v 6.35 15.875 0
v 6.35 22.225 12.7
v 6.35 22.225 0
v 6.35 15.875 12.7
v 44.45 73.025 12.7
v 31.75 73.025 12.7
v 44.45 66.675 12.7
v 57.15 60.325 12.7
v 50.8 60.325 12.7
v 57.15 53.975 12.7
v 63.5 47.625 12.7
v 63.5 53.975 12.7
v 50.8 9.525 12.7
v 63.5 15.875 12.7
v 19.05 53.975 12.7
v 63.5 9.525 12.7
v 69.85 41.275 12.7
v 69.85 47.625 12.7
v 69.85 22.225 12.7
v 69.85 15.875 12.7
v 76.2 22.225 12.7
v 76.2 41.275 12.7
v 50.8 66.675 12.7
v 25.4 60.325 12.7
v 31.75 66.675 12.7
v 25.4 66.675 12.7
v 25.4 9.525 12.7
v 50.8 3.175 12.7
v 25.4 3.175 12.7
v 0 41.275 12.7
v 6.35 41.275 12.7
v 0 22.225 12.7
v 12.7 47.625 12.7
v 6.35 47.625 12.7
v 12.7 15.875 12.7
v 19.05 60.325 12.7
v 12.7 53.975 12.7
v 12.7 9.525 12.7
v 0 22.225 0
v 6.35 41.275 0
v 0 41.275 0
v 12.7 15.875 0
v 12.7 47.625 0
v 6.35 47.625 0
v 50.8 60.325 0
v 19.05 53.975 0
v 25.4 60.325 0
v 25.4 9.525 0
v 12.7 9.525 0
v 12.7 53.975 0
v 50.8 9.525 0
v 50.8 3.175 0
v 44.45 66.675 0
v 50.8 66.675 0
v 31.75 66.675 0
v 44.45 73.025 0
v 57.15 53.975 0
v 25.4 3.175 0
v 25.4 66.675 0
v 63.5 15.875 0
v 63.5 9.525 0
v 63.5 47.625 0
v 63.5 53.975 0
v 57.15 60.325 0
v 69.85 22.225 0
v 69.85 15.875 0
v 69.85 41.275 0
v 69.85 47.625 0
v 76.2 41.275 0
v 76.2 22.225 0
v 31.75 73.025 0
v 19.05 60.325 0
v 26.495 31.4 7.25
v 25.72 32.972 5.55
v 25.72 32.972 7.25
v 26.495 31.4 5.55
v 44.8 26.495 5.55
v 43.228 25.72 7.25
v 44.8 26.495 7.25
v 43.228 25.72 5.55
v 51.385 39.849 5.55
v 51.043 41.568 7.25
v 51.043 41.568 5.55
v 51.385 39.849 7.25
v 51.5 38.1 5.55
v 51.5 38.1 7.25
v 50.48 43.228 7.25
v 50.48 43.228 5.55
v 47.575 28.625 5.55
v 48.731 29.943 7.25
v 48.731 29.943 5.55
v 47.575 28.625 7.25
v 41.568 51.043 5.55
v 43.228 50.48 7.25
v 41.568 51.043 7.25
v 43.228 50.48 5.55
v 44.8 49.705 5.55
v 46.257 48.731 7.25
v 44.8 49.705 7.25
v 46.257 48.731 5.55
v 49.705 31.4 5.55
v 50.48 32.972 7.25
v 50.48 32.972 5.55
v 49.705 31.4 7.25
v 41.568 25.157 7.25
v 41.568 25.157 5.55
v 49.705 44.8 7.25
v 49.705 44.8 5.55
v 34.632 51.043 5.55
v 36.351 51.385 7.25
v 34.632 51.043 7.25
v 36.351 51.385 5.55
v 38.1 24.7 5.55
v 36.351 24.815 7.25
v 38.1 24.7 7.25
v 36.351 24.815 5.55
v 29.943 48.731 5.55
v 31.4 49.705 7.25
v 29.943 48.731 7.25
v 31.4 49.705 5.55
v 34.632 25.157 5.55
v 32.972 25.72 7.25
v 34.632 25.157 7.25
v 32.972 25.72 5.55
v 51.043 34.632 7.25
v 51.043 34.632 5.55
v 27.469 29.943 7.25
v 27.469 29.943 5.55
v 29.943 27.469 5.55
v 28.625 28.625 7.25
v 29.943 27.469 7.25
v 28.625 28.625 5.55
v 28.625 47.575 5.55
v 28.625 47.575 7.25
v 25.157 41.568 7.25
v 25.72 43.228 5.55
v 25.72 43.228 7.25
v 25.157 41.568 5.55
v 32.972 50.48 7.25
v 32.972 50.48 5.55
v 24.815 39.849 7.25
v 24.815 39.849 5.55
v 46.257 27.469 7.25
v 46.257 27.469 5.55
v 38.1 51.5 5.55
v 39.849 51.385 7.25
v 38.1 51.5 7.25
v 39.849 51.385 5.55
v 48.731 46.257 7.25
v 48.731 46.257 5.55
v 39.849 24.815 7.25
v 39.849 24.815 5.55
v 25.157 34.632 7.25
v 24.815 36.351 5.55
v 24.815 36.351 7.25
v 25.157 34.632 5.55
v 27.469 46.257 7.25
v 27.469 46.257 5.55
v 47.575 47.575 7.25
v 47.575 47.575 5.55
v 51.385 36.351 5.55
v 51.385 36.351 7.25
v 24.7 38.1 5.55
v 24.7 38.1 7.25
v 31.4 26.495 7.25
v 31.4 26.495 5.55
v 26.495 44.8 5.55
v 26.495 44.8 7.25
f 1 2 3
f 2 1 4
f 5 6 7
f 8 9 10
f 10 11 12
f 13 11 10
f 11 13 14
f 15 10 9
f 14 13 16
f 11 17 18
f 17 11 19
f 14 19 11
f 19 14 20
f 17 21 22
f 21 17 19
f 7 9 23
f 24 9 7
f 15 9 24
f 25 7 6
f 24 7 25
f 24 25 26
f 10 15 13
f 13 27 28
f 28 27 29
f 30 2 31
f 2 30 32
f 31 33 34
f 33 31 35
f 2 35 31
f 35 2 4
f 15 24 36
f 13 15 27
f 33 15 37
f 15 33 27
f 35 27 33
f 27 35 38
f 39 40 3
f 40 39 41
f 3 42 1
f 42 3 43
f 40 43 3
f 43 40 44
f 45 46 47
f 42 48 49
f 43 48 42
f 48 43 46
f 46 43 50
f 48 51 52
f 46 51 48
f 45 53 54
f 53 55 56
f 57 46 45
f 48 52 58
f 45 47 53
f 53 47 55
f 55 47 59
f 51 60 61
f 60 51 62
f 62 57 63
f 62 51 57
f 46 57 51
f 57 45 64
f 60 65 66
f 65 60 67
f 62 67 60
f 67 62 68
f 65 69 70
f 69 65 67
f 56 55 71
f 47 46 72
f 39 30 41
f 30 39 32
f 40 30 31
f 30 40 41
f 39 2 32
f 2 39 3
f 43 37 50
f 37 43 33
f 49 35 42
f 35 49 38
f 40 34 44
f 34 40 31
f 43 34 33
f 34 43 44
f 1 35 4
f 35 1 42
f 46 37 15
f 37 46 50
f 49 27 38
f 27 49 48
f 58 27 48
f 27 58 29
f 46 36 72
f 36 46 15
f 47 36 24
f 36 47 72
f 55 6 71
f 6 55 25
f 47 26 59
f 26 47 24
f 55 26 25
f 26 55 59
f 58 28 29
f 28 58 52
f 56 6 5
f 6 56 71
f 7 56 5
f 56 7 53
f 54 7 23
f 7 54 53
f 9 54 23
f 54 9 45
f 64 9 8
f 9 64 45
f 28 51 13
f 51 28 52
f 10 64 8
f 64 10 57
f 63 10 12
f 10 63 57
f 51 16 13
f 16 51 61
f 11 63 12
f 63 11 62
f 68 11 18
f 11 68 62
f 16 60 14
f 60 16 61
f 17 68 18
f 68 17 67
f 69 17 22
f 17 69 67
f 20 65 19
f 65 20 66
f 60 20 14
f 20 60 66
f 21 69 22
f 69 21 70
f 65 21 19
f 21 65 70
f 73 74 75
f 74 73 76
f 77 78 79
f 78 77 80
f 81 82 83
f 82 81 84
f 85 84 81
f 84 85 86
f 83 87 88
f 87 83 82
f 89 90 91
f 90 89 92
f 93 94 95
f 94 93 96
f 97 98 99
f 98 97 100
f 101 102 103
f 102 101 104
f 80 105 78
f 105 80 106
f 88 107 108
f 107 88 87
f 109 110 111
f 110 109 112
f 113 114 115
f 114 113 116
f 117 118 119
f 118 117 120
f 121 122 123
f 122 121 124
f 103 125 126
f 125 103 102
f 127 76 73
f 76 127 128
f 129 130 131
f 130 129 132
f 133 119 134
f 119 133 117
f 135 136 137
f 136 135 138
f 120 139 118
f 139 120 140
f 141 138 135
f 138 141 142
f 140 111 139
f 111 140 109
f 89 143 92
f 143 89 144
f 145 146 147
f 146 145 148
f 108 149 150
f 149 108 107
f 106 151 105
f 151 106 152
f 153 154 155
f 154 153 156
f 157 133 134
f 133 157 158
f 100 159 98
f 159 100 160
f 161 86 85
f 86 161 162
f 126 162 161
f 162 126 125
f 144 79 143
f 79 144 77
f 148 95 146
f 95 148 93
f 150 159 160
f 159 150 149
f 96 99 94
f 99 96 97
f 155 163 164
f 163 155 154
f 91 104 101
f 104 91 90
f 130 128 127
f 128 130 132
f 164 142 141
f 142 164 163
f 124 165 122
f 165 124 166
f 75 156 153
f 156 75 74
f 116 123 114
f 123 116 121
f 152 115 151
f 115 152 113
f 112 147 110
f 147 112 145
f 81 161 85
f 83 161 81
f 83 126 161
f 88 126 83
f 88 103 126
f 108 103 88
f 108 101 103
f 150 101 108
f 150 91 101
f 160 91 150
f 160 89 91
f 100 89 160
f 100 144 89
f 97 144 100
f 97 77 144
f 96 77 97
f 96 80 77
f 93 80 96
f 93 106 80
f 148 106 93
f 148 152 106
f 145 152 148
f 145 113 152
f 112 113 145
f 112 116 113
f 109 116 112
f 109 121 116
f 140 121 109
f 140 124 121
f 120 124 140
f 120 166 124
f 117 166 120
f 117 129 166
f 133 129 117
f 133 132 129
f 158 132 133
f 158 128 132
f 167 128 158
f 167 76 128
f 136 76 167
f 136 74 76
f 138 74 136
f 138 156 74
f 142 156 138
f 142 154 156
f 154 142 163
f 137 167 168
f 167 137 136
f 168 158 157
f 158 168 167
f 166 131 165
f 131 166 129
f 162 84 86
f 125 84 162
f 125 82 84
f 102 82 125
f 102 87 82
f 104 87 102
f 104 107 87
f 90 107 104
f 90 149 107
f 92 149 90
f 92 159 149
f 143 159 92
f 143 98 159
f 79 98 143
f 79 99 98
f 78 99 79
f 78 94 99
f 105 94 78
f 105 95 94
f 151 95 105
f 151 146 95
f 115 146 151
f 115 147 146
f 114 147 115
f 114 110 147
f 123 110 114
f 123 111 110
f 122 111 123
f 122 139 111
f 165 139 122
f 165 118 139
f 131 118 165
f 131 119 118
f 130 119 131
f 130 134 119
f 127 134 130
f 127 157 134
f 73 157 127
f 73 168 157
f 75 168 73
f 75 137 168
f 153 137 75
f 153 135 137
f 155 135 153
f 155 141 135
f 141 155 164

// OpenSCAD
// gunpowder — Minecraft Item Shape 3D Model
// Auto-generated from minecraft/textures/item/gunpowder.png
//
// Open in OpenSCAD → F5 preview → F6 render → F7 export STL

// ============================================================
// PARAMETERS
// ============================================================

GRID_SIZE_IN    = 3.0;           // crafting table slot size
PIXELS          = 12;              // grid divisions (shape-fitted)
PIXEL_MM        = (GRID_SIZE_IN * 25.4) / PIXELS;  // mm per pixel

DEPTH_IN        = 0.5;          // extrusion depth in inches
DEPTH_MM        = DEPTH_IN * 25.4;

// NFC tag (NTAG215 25mm coin)
TAG_DIAMETER    = 26;           // mm — slightly oversized for easy drop-in
TAG_THICKNESS   = 1.2;         // mm
TAG_CLEARANCE   = 0.4;         // mm extra around tag

cavity_d = TAG_DIAMETER + TAG_CLEARANCE * 2;
cavity_h = TAG_THICKNESS + TAG_CLEARANCE;

echo(str("Tag cavity: ", cavity_d, "mm dia × ", cavity_h, "mm deep"));
echo(str("PAUSE AT: ", DEPTH_MM / 2 + cavity_h / 2, "mm to insert tag"));

module tag_cavity() {
    cx = (5.5 + 0.5) * PIXEL_MM;
    cy = (PIXELS - 1 - 5.5 + 0.5) * PIXEL_MM;
    translate([cx, cy, DEPTH_MM / 2 - cavity_h / 2])
        cylinder(d = cavity_d, h = cavity_h + 0.1, $fn = 48);
}

module tag_shelf() {
    cx = (5.5 + 0.5) * PIXEL_MM;
    cy = (PIXELS - 1 - 5.5 + 0.5) * PIXEL_MM;
    translate([cx, cy, DEPTH_MM / 2 - cavity_h / 2 - 1.0])
        cylinder(d = cavity_d + 4, h = 1.0, $fn = 48);
}

echo(str("Pixel size: ", PIXEL_MM, "mm"));
echo(str("Footprint: ", PIXELS * PIXEL_MM, "mm = ", GRID_SIZE_IN, " in"));
echo(str("Depth: ", DEPTH_MM, "mm = ", DEPTH_IN, " in"));

// ============================================================
// PIXEL MAP — 88 opaque pixels
// ============================================================

item_pixels = [
    [0.0,5.5], [0.0,6.5], [0.0,7.5], [1.0,4.5], [1.0,5.5], [1.0,6.5], [1.0,7.5], [1.0,8.5],
    [2.0,3.5], [2.0,4.5], [2.0,5.5], [2.0,6.5], [2.0,7.5], [2.0,8.5], [2.0,9.5], [3.0,2.5],
    [3.0,3.5], [3.0,4.5], [3.0,5.5], [3.0,6.5], [3.0,7.5], [3.0,8.5], [3.0,9.5], [4.0,1.5],
    [4.0,2.5], [4.0,3.5], [4.0,4.5], [4.0,5.5], [4.0,6.5], [4.0,7.5], [4.0,8.5], [4.0,9.5],
    [4.0,10.5], [5.0,0.5], [5.0,1.5], [5.0,2.5], [5.0,3.5], [5.0,4.5], [5.0,5.5], [5.0,6.5],
    [5.0,7.5], [5.0,8.5], [5.0,9.5], [5.0,10.5], [6.0,0.5], [6.0,1.5], [6.0,2.5], [6.0,3.5],
    [6.0,4.5], [6.0,5.5], [6.0,6.5], [6.0,7.5], [6.0,8.5], [6.0,9.5], [6.0,10.5], [7.0,1.5],
    [7.0,2.5], [7.0,3.5], [7.0,4.5], [7.0,5.5], [7.0,6.5], [7.0,7.5], [7.0,8.5], [7.0,9.5],
    [7.0,10.5], [8.0,2.5], [8.0,3.5], [8.0,4.5], [8.0,5.5], [8.0,6.5], [8.0,7.5], [8.0,8.5],
    [8.0,9.5], [9.0,3.5], [9.0,4.5], [9.0,5.5], [9.0,6.5], [9.0,7.5], [9.0,8.5], [9.0,9.5],
    [10.0,4.5], [10.0,5.5], [10.0,6.5], [10.0,7.5], [10.0,8.5], [11.0,5.5], [11.0,6.5], [11.0,7.5]
];

// ============================================================
// MODULES
// ============================================================

module pixel_block(col, row) {
    translate([col * PIXEL_MM, (PIXELS - 1 - row) * PIXEL_MM, 0])
        cube([PIXEL_MM, PIXEL_MM, DEPTH_MM]);
}

module item_shape() {
    for (i = [0 : len(item_pixels) - 1])
        pixel_block(item_pixels[i][0], item_pixels[i][1]);
}

module item_final() {
    difference() {
        union() {
            item_shape();
            intersection() {
                item_shape();
                tag_shelf();
            }
        }
        tag_cavity();
    }
}

item_final();

// Cross-section view (uncomment to see tag cavity):
// difference() {
//     item_final();
//     translate([8 * PIXEL_MM + 50, 0, 0])
//         cube([100, 200, 100]);
// }
